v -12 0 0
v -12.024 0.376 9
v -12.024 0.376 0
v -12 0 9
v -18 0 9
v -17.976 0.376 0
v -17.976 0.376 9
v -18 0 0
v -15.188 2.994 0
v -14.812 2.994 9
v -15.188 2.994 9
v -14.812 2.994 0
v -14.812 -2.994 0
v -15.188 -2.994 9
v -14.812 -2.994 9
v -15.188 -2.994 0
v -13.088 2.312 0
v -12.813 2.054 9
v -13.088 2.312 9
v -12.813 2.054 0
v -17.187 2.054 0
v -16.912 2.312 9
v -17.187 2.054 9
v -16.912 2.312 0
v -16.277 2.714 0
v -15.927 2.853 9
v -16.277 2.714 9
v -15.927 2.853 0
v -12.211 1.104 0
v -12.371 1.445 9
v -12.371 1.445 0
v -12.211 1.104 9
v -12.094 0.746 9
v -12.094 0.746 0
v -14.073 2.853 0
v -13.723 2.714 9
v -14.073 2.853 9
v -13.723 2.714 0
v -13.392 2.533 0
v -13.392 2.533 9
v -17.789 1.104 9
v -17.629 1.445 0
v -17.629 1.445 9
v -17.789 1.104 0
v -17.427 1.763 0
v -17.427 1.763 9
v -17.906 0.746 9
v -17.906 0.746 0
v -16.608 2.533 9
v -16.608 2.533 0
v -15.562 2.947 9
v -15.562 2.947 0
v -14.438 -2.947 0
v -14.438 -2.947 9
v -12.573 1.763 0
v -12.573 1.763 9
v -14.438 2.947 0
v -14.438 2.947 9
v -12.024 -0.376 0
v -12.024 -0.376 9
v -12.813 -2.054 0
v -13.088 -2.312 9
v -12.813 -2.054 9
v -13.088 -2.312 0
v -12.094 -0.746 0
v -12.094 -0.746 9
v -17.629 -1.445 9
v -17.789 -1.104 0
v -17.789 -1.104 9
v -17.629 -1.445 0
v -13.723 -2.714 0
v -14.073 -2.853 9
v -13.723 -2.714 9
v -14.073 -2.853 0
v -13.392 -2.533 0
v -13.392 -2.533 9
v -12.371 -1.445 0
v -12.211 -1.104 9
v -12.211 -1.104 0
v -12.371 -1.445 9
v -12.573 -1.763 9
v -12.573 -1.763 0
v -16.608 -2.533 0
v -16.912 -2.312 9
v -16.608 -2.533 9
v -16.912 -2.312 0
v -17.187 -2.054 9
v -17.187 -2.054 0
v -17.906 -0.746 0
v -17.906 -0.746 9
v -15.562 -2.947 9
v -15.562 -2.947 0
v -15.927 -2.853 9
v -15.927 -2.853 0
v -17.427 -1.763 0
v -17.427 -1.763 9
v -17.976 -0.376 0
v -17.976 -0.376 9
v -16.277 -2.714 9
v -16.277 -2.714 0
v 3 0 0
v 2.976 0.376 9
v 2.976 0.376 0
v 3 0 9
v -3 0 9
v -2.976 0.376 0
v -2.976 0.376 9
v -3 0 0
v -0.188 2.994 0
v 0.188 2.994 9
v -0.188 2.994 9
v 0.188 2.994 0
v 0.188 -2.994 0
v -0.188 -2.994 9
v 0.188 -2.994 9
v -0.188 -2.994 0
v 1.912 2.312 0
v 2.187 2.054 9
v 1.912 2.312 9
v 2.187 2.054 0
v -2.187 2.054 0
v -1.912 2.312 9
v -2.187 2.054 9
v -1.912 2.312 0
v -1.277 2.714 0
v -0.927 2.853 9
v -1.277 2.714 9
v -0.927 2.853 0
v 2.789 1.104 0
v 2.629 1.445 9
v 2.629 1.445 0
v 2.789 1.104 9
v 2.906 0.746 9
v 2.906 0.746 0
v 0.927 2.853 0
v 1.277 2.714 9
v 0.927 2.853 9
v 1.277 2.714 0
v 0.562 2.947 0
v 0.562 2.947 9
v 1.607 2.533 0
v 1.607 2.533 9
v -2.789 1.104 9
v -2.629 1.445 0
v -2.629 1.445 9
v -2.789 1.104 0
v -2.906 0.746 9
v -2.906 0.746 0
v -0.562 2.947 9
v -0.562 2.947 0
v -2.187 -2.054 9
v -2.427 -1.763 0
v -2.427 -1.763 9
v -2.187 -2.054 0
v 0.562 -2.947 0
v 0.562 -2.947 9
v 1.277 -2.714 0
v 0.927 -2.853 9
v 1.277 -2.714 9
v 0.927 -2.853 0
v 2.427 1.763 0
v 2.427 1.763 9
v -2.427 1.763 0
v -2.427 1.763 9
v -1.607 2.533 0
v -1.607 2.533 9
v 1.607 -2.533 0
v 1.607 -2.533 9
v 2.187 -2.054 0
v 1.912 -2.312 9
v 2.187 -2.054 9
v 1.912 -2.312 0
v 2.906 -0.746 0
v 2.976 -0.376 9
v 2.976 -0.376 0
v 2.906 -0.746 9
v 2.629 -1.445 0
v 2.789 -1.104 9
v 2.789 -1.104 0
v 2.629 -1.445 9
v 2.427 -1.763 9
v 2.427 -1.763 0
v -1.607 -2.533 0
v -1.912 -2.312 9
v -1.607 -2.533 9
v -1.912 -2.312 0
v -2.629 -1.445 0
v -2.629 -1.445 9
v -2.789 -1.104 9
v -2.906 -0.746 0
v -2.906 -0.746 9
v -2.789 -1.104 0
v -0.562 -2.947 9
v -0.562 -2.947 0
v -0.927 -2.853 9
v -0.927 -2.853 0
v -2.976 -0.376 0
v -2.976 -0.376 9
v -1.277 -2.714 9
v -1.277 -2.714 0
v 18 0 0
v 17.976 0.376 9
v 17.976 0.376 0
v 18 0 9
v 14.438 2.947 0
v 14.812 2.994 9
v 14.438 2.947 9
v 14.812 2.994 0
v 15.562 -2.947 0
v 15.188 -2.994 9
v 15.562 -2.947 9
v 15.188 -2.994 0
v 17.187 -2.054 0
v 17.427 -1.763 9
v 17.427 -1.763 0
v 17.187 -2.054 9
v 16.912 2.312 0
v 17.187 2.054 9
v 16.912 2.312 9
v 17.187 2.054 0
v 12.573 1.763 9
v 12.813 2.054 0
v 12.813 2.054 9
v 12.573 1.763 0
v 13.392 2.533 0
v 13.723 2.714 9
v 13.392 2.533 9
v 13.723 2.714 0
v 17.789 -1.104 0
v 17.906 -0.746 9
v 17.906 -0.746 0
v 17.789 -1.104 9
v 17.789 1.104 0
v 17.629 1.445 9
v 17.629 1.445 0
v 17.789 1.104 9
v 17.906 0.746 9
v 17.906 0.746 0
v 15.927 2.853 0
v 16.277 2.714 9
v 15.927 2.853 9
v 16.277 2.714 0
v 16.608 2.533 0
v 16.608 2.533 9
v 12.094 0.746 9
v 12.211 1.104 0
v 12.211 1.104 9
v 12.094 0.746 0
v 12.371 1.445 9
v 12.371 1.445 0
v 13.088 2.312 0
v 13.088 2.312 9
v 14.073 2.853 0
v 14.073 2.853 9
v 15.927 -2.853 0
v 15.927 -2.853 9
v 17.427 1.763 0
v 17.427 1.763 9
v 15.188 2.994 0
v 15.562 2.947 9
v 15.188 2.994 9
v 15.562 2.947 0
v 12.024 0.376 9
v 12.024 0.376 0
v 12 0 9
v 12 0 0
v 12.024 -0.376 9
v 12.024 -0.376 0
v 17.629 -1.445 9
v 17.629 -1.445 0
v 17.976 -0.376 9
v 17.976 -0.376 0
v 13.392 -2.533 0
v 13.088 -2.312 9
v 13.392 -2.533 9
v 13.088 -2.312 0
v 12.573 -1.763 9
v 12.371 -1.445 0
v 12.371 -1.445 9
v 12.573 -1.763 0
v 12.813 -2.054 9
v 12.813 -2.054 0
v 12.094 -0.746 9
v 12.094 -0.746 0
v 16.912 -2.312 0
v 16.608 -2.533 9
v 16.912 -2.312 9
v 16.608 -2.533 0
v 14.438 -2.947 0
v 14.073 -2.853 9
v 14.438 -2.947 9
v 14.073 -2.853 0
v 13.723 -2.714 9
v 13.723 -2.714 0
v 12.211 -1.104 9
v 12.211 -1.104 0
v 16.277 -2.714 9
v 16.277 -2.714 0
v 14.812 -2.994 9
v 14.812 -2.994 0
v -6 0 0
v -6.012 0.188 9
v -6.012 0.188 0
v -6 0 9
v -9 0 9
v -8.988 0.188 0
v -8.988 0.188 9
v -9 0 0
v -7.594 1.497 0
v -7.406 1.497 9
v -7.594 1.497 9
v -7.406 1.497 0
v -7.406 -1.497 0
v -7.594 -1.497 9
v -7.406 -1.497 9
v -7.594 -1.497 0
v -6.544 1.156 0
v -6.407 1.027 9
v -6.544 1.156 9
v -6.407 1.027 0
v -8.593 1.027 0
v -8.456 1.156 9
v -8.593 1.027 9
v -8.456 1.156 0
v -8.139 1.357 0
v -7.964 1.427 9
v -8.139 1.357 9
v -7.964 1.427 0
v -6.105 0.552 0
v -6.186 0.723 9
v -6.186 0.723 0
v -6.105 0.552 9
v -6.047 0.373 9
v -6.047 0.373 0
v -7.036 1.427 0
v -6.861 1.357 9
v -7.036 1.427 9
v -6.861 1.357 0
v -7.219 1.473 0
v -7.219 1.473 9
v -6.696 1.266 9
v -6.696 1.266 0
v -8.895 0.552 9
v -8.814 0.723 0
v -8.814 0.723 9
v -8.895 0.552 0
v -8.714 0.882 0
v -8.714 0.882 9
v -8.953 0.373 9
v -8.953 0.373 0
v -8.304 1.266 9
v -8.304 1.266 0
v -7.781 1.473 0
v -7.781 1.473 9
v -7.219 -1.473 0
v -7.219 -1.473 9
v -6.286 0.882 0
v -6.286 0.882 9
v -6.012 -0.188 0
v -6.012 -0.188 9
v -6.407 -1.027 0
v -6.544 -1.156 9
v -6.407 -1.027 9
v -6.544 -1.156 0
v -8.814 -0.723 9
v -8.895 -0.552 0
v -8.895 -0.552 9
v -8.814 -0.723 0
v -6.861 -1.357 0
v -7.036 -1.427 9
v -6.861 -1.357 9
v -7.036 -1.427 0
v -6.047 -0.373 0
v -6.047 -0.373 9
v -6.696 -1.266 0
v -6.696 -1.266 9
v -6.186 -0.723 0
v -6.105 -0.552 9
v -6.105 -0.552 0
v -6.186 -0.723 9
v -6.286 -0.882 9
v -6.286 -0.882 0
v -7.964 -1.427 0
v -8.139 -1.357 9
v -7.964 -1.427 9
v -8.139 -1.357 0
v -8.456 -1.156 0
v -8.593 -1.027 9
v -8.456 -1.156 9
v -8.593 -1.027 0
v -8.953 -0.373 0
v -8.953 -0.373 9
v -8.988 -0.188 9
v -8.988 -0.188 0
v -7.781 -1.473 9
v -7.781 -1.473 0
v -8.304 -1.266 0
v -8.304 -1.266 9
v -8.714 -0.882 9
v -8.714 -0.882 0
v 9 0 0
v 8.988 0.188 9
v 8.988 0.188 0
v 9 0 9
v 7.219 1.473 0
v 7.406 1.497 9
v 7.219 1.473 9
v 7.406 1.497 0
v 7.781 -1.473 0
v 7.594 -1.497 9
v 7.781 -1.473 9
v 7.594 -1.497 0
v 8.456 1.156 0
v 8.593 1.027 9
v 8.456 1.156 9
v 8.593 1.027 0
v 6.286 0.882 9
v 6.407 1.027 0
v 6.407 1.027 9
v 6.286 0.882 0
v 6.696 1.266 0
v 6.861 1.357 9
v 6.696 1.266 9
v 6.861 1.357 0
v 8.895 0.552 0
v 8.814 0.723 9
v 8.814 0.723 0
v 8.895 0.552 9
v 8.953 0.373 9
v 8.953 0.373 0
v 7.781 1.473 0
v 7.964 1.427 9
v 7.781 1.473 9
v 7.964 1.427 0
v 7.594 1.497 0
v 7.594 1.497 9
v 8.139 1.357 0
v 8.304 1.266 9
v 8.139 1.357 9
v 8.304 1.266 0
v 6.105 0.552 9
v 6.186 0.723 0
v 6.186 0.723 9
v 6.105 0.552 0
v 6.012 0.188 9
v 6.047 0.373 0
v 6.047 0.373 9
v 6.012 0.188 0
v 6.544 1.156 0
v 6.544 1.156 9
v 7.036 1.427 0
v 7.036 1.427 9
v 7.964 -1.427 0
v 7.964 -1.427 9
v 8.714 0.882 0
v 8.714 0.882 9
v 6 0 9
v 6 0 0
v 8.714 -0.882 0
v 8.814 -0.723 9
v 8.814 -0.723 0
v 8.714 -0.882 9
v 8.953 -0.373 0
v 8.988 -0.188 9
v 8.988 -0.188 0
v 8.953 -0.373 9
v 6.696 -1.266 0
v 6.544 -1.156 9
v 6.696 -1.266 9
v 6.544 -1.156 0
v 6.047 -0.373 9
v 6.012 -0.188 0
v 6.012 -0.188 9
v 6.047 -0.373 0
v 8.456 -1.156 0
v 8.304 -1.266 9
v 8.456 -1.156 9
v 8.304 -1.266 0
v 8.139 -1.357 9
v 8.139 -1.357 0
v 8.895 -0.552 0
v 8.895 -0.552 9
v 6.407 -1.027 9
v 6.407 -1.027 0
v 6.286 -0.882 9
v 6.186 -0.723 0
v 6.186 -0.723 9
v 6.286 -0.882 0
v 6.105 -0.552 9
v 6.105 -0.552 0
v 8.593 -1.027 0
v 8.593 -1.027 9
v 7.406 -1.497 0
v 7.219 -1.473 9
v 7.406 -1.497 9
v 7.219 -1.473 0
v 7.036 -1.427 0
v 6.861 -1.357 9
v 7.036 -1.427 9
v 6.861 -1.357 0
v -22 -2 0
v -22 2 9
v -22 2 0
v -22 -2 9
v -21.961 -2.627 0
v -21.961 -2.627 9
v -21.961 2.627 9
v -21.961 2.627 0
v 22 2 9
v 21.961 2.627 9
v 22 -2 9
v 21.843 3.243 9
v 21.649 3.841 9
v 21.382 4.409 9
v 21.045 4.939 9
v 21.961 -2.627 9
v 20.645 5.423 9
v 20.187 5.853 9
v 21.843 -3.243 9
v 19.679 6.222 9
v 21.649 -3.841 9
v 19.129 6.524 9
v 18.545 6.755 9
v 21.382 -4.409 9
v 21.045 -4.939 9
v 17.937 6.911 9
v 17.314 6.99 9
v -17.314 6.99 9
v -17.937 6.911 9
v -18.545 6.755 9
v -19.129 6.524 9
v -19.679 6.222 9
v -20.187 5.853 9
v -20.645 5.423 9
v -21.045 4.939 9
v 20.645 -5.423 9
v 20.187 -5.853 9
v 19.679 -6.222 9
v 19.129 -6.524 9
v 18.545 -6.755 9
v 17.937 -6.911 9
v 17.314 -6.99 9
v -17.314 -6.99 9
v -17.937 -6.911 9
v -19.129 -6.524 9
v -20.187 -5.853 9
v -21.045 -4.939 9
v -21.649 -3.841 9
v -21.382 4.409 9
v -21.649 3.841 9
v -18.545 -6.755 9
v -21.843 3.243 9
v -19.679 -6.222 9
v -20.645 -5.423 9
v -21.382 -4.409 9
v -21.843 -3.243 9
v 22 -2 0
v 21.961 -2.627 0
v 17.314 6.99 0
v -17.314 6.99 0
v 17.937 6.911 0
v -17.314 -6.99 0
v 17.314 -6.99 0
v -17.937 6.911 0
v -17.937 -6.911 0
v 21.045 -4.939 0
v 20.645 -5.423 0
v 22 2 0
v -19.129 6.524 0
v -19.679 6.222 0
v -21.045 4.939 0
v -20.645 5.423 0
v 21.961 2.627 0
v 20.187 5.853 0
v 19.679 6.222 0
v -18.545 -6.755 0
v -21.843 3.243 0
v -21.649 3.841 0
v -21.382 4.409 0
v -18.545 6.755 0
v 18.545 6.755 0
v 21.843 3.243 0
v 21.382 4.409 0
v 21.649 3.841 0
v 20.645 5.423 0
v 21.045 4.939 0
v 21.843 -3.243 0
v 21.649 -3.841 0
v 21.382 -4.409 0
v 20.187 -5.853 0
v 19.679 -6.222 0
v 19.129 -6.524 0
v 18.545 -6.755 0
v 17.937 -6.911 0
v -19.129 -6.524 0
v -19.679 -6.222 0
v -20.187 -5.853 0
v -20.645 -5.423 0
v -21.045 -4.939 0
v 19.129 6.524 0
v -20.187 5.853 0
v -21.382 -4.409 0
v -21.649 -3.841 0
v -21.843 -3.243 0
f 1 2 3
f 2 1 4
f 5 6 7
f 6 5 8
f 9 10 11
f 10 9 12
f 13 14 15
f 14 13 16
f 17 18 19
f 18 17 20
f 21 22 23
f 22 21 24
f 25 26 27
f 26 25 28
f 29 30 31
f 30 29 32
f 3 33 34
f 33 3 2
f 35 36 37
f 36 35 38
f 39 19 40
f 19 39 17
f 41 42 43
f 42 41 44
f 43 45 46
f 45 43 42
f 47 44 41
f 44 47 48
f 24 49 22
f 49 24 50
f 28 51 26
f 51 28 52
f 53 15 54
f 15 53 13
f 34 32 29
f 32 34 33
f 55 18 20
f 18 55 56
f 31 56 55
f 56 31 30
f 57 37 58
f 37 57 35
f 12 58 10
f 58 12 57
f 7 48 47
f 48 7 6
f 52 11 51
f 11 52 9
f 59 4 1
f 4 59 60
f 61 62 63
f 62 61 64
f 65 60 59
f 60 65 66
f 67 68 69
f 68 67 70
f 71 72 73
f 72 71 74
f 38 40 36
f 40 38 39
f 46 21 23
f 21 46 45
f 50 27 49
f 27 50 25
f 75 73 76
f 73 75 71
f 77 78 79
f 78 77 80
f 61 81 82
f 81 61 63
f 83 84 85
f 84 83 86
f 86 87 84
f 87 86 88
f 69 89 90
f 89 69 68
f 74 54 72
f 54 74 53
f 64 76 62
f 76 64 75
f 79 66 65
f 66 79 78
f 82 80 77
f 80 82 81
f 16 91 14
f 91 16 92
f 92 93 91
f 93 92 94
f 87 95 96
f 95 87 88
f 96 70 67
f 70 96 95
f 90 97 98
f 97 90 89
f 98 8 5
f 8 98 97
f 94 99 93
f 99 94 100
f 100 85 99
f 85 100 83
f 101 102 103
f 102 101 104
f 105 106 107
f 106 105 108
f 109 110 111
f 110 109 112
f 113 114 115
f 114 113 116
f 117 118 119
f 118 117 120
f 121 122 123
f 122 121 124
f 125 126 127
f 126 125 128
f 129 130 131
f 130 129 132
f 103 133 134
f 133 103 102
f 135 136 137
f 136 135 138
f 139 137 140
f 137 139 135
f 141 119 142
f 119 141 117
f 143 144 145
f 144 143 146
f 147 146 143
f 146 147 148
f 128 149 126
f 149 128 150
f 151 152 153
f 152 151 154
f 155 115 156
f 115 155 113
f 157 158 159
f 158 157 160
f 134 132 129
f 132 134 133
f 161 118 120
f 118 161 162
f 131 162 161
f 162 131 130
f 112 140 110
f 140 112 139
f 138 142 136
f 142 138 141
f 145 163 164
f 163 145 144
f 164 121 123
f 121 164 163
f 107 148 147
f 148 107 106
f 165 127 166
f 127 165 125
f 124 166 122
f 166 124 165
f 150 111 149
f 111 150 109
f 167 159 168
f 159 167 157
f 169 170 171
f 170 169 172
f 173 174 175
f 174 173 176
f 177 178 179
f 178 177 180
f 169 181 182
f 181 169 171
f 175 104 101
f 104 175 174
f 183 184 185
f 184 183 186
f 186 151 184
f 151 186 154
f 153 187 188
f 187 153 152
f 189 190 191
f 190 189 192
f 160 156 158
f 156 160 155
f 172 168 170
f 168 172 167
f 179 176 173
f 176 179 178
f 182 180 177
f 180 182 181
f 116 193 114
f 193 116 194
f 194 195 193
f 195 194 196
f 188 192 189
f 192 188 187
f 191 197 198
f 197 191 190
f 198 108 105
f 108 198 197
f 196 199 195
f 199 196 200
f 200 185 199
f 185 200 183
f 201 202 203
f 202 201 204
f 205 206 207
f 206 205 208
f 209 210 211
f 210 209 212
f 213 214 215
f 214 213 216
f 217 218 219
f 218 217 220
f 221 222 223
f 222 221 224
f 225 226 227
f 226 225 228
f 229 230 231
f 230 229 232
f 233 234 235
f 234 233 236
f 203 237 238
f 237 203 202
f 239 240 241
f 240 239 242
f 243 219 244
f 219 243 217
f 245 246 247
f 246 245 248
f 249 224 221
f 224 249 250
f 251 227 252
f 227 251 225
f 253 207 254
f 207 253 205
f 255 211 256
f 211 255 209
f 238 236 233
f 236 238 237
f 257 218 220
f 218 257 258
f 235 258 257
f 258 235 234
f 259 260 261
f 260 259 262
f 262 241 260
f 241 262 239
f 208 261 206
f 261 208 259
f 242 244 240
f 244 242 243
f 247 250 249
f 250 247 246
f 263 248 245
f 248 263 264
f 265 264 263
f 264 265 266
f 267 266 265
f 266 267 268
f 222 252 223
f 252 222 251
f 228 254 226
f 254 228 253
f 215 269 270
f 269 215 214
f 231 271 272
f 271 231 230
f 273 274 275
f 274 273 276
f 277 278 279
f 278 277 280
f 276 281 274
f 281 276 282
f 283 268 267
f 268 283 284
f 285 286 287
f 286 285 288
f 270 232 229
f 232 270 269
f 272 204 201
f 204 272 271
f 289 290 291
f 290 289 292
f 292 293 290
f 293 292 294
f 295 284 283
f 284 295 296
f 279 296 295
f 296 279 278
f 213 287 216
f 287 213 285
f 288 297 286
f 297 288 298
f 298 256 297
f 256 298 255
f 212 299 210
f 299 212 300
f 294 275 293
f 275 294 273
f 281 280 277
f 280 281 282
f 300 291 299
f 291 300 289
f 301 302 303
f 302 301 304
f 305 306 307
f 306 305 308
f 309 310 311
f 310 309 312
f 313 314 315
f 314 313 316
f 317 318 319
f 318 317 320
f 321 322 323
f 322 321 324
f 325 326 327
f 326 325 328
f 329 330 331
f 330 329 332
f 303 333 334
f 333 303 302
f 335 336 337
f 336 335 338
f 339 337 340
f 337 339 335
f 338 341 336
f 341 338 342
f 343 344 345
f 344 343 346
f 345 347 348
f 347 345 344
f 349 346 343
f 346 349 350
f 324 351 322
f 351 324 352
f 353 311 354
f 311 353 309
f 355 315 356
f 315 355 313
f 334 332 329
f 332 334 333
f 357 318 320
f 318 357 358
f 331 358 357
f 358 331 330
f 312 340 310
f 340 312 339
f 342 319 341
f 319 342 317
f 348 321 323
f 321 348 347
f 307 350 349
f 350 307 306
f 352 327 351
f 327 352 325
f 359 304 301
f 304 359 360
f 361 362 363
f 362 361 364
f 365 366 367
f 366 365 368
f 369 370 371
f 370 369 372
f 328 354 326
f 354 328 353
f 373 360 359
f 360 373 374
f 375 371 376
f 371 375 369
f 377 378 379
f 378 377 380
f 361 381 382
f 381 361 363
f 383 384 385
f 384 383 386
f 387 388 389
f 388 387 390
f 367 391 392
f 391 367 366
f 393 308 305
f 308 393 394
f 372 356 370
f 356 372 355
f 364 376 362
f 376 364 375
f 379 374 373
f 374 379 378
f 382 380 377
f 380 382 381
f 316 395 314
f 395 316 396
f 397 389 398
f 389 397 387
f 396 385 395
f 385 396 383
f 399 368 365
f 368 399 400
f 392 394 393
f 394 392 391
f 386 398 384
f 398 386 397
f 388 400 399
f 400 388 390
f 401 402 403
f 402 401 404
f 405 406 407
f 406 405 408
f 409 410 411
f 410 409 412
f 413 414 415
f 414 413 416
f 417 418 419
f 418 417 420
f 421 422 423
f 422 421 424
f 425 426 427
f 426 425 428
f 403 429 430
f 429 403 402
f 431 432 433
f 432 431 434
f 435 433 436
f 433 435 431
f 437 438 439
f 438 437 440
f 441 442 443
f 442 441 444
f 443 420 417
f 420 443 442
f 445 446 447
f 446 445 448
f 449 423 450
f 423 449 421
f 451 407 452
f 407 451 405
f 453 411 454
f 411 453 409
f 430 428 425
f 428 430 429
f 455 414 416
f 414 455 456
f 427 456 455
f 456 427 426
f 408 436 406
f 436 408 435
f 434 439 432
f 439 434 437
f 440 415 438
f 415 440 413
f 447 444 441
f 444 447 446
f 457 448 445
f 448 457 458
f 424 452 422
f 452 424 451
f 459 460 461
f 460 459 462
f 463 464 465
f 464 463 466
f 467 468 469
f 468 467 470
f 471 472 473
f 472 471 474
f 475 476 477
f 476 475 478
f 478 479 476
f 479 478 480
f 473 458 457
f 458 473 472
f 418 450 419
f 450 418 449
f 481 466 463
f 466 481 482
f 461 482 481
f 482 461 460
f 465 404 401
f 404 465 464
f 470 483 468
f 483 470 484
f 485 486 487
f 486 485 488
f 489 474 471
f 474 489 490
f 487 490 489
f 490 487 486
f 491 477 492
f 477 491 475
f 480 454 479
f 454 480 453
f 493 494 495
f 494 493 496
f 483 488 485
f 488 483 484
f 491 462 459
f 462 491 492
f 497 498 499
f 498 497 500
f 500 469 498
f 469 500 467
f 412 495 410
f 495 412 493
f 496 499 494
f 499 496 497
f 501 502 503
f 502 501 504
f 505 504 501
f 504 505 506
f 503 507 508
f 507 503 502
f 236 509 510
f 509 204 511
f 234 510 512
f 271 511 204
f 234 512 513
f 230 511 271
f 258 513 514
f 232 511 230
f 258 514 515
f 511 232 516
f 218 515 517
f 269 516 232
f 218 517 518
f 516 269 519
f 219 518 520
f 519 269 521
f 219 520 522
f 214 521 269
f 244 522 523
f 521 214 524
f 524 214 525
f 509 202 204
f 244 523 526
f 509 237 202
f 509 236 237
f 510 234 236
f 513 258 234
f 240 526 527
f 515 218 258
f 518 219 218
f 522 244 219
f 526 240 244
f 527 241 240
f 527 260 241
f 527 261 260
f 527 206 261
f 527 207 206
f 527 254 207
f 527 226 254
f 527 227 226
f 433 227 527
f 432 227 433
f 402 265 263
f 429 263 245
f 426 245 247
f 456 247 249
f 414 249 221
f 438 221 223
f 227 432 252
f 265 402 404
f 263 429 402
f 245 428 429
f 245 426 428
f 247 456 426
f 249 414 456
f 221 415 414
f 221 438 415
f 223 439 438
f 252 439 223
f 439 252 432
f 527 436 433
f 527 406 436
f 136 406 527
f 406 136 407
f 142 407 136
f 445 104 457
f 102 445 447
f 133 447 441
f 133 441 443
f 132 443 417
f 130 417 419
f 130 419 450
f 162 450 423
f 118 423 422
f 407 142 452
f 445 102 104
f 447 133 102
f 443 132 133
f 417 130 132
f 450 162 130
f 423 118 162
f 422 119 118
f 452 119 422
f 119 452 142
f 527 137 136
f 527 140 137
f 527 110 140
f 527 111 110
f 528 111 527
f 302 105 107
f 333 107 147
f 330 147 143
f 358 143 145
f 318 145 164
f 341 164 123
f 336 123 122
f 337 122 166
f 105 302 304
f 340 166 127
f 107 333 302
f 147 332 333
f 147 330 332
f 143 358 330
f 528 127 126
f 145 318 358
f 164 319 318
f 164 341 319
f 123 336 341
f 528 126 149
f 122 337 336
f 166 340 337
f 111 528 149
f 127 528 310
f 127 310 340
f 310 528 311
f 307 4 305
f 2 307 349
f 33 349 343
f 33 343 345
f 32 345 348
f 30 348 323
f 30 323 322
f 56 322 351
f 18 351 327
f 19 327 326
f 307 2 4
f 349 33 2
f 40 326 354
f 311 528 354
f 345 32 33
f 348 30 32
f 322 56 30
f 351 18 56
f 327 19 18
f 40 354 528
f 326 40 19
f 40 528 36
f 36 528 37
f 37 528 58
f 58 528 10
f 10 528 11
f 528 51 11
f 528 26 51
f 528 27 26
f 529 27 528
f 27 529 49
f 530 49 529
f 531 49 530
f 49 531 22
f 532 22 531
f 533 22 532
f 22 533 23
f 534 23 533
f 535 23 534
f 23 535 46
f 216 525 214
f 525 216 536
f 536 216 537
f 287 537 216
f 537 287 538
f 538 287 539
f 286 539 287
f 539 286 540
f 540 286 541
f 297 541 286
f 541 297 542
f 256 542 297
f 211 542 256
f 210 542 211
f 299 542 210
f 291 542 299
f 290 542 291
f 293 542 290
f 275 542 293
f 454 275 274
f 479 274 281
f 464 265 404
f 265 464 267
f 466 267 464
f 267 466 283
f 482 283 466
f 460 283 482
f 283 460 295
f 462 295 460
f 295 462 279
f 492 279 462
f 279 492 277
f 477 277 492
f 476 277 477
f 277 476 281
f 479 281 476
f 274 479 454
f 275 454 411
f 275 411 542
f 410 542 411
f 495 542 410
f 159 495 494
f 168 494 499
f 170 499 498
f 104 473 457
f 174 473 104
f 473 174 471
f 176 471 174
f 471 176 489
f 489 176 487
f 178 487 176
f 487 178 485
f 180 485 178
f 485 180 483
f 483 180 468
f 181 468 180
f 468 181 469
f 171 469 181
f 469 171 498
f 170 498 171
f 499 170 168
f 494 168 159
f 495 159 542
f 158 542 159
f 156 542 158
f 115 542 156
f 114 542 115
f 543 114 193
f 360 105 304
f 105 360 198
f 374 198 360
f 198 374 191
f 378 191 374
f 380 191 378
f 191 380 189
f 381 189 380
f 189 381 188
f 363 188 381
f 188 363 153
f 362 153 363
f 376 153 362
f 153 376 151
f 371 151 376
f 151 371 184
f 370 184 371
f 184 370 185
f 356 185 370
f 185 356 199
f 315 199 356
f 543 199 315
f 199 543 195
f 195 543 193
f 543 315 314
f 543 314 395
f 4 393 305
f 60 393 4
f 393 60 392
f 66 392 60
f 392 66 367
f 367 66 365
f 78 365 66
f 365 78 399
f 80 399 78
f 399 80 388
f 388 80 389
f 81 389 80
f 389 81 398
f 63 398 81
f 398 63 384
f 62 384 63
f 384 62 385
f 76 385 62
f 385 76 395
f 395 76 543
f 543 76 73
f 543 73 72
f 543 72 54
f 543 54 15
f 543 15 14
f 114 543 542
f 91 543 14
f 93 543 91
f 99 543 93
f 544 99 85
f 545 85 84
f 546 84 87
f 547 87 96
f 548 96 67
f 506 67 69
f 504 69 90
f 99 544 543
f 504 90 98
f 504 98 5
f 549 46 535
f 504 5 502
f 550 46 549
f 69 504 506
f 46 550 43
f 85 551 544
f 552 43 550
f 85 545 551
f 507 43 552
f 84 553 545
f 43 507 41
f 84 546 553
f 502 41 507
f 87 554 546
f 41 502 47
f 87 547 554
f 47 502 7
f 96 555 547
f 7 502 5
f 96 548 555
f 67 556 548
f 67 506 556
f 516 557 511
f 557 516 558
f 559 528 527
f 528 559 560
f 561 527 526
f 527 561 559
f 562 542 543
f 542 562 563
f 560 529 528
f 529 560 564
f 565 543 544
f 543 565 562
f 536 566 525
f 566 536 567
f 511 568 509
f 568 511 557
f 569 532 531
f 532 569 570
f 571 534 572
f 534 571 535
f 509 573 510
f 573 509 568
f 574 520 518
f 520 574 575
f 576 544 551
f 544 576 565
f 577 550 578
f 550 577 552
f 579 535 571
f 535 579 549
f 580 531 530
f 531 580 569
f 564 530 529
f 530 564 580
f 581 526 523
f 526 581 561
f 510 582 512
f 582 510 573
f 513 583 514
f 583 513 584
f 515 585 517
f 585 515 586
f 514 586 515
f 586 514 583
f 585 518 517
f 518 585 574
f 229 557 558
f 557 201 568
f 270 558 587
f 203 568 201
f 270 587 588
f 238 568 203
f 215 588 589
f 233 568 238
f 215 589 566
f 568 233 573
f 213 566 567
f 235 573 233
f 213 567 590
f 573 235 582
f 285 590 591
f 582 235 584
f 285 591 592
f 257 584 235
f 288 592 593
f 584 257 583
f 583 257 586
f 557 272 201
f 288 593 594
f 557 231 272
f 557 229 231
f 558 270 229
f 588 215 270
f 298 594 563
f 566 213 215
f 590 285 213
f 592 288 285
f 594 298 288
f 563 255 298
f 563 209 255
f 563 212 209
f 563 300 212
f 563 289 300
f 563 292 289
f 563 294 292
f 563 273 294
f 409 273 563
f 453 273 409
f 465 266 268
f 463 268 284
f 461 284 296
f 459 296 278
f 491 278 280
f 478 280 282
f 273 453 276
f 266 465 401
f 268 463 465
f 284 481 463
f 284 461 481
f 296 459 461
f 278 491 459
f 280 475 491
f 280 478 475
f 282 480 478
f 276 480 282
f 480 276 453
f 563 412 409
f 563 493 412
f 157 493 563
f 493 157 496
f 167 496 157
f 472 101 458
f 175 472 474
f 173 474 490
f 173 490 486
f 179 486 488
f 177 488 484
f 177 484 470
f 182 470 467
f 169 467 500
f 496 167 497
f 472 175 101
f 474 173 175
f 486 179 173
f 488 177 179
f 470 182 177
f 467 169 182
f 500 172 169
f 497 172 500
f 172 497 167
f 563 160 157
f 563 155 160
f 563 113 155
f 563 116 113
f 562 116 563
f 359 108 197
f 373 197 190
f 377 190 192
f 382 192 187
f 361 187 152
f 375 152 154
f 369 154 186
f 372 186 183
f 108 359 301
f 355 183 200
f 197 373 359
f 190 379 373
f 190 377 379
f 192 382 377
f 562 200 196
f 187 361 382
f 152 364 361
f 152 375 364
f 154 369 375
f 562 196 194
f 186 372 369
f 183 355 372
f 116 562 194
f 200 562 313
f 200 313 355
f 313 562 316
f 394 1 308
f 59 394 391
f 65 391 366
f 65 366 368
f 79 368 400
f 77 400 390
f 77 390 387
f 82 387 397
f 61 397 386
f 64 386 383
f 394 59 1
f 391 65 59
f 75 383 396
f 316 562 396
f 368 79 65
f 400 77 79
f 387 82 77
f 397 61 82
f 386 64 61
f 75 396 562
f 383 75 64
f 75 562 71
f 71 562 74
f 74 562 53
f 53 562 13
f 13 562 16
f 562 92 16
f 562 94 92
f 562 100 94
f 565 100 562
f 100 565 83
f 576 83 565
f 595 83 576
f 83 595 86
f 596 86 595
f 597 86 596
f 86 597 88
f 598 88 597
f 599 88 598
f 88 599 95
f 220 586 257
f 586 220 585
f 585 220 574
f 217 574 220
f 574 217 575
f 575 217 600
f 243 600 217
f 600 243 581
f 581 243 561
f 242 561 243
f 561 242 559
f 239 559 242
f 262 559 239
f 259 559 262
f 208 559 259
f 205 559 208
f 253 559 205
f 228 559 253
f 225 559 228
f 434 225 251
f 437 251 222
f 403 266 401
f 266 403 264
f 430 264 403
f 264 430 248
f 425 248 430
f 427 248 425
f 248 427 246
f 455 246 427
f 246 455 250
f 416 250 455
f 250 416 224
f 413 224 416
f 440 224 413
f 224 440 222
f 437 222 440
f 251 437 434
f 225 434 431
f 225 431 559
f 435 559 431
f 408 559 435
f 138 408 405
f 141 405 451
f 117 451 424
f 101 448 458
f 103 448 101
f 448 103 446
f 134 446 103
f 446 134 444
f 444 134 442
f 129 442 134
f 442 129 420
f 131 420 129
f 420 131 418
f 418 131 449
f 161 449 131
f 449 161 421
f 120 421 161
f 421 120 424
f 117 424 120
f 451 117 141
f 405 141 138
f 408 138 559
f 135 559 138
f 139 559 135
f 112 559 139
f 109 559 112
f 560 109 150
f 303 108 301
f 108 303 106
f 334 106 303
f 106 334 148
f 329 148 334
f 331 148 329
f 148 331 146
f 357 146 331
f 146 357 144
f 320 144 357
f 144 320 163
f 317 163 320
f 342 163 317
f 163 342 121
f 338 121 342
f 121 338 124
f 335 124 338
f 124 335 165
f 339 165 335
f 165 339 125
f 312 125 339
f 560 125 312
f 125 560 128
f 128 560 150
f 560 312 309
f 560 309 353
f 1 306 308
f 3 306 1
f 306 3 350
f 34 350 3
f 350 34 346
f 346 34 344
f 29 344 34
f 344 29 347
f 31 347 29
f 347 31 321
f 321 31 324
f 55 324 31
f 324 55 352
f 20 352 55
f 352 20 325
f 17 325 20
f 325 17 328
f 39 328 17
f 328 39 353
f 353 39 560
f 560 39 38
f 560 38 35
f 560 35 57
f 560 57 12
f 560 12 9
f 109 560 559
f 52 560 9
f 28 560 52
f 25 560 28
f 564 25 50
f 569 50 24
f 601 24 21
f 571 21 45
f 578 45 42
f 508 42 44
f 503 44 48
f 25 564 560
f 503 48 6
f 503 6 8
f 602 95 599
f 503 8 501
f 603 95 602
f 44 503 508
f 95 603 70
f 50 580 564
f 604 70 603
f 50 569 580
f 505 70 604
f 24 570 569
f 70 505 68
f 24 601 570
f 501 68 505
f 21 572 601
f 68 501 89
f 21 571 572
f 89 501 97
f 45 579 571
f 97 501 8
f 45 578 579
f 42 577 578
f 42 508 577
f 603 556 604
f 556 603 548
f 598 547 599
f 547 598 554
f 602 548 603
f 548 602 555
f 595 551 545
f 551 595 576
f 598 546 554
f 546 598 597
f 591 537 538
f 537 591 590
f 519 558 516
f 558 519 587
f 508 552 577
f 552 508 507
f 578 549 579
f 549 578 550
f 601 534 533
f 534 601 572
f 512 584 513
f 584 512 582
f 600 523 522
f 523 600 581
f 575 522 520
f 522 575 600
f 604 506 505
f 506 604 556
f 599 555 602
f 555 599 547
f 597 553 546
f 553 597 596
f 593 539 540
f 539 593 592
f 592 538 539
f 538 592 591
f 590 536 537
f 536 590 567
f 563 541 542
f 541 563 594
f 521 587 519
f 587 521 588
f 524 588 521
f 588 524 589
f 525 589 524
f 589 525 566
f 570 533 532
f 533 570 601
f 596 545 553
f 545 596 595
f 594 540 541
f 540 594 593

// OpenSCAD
$fn = 50;


difference() {
	union() {
		translate(v = [0, 0, 0]) {
			rotate(a = [0, 0, 0]) {
				hull() {
					translate(v = [-17.0000000000, 2.0000000000, 0]) {
						rotate(a = [0, 0, 0]) {
							translate(v = [0, 0, 0]) {
								rotate(a = [0, 0, 0]) {
									cylinder(h = 9, r = 5);
								}
							}
						}
					}
					translate(v = [17.0000000000, 2.0000000000, 0]) {
						rotate(a = [0, 0, 0]) {
							translate(v = [0, 0, 0]) {
								rotate(a = [0, 0, 0]) {
									cylinder(h = 9, r = 5);
								}
							}
						}
					}
					translate(v = [-17.0000000000, -2.0000000000, 0]) {
						rotate(a = [0, 0, 0]) {
							translate(v = [0, 0, 0]) {
								rotate(a = [0, 0, 0]) {
									cylinder(h = 9, r = 5);
								}
							}
						}
					}
					translate(v = [17.0000000000, -2.0000000000, 0]) {
						rotate(a = [0, 0, 0]) {
							translate(v = [0, 0, 0]) {
								rotate(a = [0, 0, 0]) {
									cylinder(h = 9, r = 5);
								}
							}
						}
					}
				}
			}
		}
	}
	union() {
		translate(v = [-15.0000000000, 0.0000000000, 0]) {
			rotate(a = [0, 0, 0]) {
				translate(v = [0, 0, -50]) {
					rotate(a = [0, 0, 0]) {
						cylinder(h = 100, r = 3.0000000000);
					}
				}
			}
		}
		translate(v = [0.0000000000, 0.0000000000, 0]) {
			rotate(a = [0, 0, 0]) {
				translate(v = [0, 0, -50]) {
					rotate(a = [0, 0, 0]) {
						cylinder(h = 100, r = 3.0000000000);
					}
				}
			}
		}
		translate(v = [15.0000000000, 0.0000000000, 0]) {
			rotate(a = [0, 0, 0]) {
				translate(v = [0, 0, -50]) {
					rotate(a = [0, 0, 0]) {
						cylinder(h = 100, r = 3.0000000000);
					}
				}
			}
		}
		translate(v = [-15.0000000000, 0.0000000000, 0]) {
			rotate(a = [0, 0, 0]) {
				translate(v = [0, 0, -50]) {
					rotate(a = [0, 0, 0]) {
						cylinder(h = 100, r = 1.5000000000);
					}
				}
			}
		}
		translate(v = [-7.5000000000, 0.0000000000, 0]) {
			rotate(a = [0, 0, 0]) {
				translate(v = [0, 0, -50]) {
					rotate(a = [0, 0, 0]) {
						cylinder(h = 100, r = 1.5000000000);
					}
				}
			}
		}
		translate(v = [0.0000000000, 0.0000000000, 0]) {
			rotate(a = [0, 0, 0]) {
				translate(v = [0, 0, -50]) {
					rotate(a = [0, 0, 0]) {
						cylinder(h = 100, r = 1.5000000000);
					}
				}
			}
		}
		translate(v = [7.5000000000, 0.0000000000, 0]) {
			rotate(a = [0, 0, 0]) {
				translate(v = [0, 0, -50]) {
					rotate(a = [0, 0, 0]) {
						cylinder(h = 100, r = 1.5000000000);
					}
				}
			}
		}
		translate(v = [15.0000000000, 0.0000000000, 0]) {
			rotate(a = [0, 0, 0]) {
				translate(v = [0, 0, -50]) {
					rotate(a = [0, 0, 0]) {
						cylinder(h = 100, r = 1.5000000000);
					}
				}
			}
		}
	}
}
